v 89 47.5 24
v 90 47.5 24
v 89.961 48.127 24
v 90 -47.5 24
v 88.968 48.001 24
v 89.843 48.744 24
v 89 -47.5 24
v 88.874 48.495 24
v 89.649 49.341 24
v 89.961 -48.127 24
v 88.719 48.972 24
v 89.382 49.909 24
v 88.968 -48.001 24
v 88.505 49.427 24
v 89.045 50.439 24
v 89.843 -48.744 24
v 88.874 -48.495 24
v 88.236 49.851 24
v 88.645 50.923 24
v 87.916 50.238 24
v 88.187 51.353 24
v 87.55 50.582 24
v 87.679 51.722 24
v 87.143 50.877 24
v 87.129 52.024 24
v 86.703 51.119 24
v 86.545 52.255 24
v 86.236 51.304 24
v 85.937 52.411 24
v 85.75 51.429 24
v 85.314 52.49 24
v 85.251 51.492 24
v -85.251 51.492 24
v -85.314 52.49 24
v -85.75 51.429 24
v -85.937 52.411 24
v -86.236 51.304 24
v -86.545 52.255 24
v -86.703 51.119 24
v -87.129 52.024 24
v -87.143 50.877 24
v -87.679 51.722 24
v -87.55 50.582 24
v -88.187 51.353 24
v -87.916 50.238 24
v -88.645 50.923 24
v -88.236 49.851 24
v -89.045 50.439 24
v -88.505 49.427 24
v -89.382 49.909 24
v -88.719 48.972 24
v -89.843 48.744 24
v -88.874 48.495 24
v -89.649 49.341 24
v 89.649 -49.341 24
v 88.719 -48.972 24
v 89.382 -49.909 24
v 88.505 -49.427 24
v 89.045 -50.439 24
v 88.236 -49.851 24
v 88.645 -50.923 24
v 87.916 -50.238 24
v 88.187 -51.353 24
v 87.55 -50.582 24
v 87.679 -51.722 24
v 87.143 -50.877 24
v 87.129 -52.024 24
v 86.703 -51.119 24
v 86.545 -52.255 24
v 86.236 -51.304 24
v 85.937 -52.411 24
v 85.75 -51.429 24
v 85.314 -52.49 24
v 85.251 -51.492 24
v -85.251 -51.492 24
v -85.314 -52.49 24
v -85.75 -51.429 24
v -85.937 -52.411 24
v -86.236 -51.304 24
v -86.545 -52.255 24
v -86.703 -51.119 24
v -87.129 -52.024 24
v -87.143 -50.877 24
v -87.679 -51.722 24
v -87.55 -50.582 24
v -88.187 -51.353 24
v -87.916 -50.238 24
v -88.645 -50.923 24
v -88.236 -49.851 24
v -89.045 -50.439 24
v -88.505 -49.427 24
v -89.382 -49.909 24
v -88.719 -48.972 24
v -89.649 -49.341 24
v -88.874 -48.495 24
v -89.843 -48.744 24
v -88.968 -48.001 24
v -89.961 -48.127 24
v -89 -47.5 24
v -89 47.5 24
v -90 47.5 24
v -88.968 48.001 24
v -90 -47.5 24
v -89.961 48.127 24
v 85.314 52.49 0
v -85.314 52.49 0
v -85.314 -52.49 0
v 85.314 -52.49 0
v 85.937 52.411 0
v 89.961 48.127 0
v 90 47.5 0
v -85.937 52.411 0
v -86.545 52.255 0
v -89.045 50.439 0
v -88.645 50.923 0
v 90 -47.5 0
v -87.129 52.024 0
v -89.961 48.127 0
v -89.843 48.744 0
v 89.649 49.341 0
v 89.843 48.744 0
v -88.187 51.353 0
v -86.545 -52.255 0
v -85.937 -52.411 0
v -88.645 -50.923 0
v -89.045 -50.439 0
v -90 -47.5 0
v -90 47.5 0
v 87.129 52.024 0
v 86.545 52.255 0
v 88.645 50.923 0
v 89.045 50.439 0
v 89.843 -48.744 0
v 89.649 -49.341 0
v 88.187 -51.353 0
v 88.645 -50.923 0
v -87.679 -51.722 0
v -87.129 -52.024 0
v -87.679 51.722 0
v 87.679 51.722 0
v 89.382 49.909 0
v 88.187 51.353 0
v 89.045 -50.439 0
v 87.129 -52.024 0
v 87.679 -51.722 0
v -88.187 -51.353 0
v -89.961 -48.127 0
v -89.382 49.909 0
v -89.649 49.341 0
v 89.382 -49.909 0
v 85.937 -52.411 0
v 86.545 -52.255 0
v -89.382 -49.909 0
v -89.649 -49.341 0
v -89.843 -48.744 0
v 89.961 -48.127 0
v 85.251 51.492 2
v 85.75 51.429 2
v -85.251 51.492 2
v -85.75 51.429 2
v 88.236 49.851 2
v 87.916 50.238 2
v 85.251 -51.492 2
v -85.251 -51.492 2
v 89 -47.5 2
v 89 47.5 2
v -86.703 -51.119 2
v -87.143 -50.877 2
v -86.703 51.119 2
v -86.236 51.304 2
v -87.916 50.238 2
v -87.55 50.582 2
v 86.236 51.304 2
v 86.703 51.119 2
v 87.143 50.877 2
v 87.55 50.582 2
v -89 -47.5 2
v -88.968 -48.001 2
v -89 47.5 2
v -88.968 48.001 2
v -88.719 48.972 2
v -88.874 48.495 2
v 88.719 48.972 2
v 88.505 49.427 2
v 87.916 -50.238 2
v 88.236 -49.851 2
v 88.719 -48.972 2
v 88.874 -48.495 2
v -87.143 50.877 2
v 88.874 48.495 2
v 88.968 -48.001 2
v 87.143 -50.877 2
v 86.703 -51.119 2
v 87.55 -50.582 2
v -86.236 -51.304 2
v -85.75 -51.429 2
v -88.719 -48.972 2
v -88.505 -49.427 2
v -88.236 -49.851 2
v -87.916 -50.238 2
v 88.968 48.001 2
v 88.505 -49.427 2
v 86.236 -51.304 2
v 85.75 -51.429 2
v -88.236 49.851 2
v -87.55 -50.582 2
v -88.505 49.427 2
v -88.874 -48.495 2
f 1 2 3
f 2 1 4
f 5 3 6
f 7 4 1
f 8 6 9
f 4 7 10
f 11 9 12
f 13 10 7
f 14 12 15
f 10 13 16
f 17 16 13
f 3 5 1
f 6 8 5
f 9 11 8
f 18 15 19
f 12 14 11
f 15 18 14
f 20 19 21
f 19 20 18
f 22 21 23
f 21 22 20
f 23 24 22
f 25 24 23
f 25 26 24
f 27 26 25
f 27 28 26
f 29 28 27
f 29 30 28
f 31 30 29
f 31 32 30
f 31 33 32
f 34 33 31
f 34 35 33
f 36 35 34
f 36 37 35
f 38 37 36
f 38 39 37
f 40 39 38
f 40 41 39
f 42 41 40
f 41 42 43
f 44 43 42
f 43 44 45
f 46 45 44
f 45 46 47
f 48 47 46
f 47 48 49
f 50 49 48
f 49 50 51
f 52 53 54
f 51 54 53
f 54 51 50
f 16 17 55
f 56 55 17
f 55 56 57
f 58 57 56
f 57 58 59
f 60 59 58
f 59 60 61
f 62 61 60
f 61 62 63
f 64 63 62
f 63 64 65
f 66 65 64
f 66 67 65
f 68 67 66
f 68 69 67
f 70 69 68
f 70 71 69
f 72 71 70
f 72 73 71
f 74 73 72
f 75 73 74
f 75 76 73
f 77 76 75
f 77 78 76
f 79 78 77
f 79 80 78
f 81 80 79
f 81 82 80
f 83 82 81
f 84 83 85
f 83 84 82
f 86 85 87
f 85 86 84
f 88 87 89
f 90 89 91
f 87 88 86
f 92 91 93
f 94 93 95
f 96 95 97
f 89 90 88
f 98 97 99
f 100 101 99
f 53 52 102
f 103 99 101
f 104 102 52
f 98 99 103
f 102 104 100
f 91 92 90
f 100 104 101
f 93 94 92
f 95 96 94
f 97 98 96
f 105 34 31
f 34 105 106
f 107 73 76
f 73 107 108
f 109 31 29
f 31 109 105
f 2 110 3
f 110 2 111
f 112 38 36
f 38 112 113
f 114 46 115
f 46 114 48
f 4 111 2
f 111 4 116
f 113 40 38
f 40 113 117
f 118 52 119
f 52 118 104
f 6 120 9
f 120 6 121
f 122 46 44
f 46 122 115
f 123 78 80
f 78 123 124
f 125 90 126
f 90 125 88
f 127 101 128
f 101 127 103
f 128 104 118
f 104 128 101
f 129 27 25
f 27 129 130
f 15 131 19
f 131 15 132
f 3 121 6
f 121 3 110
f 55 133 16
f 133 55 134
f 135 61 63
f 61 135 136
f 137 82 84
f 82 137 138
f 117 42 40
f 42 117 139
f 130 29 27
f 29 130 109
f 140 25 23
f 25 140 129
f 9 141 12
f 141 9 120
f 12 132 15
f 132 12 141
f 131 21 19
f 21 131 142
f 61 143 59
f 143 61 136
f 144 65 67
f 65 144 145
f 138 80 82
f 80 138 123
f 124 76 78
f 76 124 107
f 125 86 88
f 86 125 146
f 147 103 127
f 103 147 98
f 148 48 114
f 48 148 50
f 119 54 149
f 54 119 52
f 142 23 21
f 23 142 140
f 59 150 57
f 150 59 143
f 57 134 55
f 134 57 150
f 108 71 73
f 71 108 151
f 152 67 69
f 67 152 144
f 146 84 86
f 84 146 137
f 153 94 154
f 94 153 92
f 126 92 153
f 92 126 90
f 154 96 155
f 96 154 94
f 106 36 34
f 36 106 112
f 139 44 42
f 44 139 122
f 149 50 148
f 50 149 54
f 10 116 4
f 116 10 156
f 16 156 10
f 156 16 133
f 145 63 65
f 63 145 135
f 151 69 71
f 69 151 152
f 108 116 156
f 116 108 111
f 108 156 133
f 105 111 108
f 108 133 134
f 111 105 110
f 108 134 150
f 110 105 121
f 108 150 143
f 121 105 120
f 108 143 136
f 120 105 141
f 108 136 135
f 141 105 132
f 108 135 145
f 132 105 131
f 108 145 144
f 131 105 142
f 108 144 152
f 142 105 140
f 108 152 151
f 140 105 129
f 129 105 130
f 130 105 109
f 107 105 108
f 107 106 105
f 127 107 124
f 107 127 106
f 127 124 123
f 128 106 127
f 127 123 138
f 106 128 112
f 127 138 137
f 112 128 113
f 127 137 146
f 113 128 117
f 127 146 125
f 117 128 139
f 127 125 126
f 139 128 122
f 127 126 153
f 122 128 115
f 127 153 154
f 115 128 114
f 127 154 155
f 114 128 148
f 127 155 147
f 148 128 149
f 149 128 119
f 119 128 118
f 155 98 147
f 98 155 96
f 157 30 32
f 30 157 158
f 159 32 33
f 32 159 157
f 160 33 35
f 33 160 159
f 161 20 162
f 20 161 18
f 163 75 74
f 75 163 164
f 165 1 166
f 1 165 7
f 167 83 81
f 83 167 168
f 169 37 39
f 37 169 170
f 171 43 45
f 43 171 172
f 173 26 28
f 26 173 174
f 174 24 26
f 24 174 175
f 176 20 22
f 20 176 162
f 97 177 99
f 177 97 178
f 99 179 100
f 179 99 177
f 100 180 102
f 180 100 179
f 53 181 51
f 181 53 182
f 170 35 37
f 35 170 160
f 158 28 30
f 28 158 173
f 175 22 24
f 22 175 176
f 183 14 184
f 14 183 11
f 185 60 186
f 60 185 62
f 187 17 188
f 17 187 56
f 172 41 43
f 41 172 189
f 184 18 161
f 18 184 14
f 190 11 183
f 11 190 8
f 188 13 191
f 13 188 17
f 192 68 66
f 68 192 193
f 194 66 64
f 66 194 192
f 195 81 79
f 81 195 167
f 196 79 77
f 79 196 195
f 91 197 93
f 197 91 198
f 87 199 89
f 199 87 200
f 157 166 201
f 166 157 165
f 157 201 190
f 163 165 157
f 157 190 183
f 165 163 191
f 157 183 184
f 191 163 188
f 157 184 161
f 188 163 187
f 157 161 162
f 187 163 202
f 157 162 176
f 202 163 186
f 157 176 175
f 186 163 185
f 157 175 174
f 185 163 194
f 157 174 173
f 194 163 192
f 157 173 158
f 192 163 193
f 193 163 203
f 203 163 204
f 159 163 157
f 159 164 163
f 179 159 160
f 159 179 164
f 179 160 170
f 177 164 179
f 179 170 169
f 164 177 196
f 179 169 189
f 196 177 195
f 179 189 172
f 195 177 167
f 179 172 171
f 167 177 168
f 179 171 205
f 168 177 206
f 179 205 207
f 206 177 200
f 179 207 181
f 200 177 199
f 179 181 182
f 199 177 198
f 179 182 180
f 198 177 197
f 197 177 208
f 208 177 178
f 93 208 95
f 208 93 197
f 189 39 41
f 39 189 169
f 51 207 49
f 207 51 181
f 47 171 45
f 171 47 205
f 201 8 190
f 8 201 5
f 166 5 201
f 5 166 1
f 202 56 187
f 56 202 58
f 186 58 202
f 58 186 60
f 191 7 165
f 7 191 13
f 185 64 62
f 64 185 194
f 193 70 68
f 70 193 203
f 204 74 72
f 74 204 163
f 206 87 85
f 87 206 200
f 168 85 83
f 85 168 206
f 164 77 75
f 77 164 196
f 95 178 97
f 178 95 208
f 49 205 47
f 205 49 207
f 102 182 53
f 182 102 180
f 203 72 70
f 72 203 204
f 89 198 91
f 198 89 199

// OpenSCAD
$fn = 50;


difference() {
	union() {
		hull() {
			translate(v = [-85.0000000000, 47.5000000000, 0]) {
				cylinder(h = 24, r = 5);
			}
			translate(v = [85.0000000000, 47.5000000000, 0]) {
				cylinder(h = 24, r = 5);
			}
			translate(v = [-85.0000000000, -47.5000000000, 0]) {
				cylinder(h = 24, r = 5);
			}
			translate(v = [85.0000000000, -47.5000000000, 0]) {
				cylinder(h = 24, r = 5);
			}
		}
	}
	union() {
		translate(v = [0, 0, 2]) {
			hull() {
				translate(v = [-85.0000000000, 47.5000000000, 0]) {
					cylinder(h = 22, r = 4);
				}
				translate(v = [85.0000000000, 47.5000000000, 0]) {
					cylinder(h = 22, r = 4);
				}
				translate(v = [-85.0000000000, -47.5000000000, 0]) {
					cylinder(h = 22, r = 4);
				}
				translate(v = [85.0000000000, -47.5000000000, 0]) {
					cylinder(h = 22, r = 4);
				}
			}
		}
	}
}
